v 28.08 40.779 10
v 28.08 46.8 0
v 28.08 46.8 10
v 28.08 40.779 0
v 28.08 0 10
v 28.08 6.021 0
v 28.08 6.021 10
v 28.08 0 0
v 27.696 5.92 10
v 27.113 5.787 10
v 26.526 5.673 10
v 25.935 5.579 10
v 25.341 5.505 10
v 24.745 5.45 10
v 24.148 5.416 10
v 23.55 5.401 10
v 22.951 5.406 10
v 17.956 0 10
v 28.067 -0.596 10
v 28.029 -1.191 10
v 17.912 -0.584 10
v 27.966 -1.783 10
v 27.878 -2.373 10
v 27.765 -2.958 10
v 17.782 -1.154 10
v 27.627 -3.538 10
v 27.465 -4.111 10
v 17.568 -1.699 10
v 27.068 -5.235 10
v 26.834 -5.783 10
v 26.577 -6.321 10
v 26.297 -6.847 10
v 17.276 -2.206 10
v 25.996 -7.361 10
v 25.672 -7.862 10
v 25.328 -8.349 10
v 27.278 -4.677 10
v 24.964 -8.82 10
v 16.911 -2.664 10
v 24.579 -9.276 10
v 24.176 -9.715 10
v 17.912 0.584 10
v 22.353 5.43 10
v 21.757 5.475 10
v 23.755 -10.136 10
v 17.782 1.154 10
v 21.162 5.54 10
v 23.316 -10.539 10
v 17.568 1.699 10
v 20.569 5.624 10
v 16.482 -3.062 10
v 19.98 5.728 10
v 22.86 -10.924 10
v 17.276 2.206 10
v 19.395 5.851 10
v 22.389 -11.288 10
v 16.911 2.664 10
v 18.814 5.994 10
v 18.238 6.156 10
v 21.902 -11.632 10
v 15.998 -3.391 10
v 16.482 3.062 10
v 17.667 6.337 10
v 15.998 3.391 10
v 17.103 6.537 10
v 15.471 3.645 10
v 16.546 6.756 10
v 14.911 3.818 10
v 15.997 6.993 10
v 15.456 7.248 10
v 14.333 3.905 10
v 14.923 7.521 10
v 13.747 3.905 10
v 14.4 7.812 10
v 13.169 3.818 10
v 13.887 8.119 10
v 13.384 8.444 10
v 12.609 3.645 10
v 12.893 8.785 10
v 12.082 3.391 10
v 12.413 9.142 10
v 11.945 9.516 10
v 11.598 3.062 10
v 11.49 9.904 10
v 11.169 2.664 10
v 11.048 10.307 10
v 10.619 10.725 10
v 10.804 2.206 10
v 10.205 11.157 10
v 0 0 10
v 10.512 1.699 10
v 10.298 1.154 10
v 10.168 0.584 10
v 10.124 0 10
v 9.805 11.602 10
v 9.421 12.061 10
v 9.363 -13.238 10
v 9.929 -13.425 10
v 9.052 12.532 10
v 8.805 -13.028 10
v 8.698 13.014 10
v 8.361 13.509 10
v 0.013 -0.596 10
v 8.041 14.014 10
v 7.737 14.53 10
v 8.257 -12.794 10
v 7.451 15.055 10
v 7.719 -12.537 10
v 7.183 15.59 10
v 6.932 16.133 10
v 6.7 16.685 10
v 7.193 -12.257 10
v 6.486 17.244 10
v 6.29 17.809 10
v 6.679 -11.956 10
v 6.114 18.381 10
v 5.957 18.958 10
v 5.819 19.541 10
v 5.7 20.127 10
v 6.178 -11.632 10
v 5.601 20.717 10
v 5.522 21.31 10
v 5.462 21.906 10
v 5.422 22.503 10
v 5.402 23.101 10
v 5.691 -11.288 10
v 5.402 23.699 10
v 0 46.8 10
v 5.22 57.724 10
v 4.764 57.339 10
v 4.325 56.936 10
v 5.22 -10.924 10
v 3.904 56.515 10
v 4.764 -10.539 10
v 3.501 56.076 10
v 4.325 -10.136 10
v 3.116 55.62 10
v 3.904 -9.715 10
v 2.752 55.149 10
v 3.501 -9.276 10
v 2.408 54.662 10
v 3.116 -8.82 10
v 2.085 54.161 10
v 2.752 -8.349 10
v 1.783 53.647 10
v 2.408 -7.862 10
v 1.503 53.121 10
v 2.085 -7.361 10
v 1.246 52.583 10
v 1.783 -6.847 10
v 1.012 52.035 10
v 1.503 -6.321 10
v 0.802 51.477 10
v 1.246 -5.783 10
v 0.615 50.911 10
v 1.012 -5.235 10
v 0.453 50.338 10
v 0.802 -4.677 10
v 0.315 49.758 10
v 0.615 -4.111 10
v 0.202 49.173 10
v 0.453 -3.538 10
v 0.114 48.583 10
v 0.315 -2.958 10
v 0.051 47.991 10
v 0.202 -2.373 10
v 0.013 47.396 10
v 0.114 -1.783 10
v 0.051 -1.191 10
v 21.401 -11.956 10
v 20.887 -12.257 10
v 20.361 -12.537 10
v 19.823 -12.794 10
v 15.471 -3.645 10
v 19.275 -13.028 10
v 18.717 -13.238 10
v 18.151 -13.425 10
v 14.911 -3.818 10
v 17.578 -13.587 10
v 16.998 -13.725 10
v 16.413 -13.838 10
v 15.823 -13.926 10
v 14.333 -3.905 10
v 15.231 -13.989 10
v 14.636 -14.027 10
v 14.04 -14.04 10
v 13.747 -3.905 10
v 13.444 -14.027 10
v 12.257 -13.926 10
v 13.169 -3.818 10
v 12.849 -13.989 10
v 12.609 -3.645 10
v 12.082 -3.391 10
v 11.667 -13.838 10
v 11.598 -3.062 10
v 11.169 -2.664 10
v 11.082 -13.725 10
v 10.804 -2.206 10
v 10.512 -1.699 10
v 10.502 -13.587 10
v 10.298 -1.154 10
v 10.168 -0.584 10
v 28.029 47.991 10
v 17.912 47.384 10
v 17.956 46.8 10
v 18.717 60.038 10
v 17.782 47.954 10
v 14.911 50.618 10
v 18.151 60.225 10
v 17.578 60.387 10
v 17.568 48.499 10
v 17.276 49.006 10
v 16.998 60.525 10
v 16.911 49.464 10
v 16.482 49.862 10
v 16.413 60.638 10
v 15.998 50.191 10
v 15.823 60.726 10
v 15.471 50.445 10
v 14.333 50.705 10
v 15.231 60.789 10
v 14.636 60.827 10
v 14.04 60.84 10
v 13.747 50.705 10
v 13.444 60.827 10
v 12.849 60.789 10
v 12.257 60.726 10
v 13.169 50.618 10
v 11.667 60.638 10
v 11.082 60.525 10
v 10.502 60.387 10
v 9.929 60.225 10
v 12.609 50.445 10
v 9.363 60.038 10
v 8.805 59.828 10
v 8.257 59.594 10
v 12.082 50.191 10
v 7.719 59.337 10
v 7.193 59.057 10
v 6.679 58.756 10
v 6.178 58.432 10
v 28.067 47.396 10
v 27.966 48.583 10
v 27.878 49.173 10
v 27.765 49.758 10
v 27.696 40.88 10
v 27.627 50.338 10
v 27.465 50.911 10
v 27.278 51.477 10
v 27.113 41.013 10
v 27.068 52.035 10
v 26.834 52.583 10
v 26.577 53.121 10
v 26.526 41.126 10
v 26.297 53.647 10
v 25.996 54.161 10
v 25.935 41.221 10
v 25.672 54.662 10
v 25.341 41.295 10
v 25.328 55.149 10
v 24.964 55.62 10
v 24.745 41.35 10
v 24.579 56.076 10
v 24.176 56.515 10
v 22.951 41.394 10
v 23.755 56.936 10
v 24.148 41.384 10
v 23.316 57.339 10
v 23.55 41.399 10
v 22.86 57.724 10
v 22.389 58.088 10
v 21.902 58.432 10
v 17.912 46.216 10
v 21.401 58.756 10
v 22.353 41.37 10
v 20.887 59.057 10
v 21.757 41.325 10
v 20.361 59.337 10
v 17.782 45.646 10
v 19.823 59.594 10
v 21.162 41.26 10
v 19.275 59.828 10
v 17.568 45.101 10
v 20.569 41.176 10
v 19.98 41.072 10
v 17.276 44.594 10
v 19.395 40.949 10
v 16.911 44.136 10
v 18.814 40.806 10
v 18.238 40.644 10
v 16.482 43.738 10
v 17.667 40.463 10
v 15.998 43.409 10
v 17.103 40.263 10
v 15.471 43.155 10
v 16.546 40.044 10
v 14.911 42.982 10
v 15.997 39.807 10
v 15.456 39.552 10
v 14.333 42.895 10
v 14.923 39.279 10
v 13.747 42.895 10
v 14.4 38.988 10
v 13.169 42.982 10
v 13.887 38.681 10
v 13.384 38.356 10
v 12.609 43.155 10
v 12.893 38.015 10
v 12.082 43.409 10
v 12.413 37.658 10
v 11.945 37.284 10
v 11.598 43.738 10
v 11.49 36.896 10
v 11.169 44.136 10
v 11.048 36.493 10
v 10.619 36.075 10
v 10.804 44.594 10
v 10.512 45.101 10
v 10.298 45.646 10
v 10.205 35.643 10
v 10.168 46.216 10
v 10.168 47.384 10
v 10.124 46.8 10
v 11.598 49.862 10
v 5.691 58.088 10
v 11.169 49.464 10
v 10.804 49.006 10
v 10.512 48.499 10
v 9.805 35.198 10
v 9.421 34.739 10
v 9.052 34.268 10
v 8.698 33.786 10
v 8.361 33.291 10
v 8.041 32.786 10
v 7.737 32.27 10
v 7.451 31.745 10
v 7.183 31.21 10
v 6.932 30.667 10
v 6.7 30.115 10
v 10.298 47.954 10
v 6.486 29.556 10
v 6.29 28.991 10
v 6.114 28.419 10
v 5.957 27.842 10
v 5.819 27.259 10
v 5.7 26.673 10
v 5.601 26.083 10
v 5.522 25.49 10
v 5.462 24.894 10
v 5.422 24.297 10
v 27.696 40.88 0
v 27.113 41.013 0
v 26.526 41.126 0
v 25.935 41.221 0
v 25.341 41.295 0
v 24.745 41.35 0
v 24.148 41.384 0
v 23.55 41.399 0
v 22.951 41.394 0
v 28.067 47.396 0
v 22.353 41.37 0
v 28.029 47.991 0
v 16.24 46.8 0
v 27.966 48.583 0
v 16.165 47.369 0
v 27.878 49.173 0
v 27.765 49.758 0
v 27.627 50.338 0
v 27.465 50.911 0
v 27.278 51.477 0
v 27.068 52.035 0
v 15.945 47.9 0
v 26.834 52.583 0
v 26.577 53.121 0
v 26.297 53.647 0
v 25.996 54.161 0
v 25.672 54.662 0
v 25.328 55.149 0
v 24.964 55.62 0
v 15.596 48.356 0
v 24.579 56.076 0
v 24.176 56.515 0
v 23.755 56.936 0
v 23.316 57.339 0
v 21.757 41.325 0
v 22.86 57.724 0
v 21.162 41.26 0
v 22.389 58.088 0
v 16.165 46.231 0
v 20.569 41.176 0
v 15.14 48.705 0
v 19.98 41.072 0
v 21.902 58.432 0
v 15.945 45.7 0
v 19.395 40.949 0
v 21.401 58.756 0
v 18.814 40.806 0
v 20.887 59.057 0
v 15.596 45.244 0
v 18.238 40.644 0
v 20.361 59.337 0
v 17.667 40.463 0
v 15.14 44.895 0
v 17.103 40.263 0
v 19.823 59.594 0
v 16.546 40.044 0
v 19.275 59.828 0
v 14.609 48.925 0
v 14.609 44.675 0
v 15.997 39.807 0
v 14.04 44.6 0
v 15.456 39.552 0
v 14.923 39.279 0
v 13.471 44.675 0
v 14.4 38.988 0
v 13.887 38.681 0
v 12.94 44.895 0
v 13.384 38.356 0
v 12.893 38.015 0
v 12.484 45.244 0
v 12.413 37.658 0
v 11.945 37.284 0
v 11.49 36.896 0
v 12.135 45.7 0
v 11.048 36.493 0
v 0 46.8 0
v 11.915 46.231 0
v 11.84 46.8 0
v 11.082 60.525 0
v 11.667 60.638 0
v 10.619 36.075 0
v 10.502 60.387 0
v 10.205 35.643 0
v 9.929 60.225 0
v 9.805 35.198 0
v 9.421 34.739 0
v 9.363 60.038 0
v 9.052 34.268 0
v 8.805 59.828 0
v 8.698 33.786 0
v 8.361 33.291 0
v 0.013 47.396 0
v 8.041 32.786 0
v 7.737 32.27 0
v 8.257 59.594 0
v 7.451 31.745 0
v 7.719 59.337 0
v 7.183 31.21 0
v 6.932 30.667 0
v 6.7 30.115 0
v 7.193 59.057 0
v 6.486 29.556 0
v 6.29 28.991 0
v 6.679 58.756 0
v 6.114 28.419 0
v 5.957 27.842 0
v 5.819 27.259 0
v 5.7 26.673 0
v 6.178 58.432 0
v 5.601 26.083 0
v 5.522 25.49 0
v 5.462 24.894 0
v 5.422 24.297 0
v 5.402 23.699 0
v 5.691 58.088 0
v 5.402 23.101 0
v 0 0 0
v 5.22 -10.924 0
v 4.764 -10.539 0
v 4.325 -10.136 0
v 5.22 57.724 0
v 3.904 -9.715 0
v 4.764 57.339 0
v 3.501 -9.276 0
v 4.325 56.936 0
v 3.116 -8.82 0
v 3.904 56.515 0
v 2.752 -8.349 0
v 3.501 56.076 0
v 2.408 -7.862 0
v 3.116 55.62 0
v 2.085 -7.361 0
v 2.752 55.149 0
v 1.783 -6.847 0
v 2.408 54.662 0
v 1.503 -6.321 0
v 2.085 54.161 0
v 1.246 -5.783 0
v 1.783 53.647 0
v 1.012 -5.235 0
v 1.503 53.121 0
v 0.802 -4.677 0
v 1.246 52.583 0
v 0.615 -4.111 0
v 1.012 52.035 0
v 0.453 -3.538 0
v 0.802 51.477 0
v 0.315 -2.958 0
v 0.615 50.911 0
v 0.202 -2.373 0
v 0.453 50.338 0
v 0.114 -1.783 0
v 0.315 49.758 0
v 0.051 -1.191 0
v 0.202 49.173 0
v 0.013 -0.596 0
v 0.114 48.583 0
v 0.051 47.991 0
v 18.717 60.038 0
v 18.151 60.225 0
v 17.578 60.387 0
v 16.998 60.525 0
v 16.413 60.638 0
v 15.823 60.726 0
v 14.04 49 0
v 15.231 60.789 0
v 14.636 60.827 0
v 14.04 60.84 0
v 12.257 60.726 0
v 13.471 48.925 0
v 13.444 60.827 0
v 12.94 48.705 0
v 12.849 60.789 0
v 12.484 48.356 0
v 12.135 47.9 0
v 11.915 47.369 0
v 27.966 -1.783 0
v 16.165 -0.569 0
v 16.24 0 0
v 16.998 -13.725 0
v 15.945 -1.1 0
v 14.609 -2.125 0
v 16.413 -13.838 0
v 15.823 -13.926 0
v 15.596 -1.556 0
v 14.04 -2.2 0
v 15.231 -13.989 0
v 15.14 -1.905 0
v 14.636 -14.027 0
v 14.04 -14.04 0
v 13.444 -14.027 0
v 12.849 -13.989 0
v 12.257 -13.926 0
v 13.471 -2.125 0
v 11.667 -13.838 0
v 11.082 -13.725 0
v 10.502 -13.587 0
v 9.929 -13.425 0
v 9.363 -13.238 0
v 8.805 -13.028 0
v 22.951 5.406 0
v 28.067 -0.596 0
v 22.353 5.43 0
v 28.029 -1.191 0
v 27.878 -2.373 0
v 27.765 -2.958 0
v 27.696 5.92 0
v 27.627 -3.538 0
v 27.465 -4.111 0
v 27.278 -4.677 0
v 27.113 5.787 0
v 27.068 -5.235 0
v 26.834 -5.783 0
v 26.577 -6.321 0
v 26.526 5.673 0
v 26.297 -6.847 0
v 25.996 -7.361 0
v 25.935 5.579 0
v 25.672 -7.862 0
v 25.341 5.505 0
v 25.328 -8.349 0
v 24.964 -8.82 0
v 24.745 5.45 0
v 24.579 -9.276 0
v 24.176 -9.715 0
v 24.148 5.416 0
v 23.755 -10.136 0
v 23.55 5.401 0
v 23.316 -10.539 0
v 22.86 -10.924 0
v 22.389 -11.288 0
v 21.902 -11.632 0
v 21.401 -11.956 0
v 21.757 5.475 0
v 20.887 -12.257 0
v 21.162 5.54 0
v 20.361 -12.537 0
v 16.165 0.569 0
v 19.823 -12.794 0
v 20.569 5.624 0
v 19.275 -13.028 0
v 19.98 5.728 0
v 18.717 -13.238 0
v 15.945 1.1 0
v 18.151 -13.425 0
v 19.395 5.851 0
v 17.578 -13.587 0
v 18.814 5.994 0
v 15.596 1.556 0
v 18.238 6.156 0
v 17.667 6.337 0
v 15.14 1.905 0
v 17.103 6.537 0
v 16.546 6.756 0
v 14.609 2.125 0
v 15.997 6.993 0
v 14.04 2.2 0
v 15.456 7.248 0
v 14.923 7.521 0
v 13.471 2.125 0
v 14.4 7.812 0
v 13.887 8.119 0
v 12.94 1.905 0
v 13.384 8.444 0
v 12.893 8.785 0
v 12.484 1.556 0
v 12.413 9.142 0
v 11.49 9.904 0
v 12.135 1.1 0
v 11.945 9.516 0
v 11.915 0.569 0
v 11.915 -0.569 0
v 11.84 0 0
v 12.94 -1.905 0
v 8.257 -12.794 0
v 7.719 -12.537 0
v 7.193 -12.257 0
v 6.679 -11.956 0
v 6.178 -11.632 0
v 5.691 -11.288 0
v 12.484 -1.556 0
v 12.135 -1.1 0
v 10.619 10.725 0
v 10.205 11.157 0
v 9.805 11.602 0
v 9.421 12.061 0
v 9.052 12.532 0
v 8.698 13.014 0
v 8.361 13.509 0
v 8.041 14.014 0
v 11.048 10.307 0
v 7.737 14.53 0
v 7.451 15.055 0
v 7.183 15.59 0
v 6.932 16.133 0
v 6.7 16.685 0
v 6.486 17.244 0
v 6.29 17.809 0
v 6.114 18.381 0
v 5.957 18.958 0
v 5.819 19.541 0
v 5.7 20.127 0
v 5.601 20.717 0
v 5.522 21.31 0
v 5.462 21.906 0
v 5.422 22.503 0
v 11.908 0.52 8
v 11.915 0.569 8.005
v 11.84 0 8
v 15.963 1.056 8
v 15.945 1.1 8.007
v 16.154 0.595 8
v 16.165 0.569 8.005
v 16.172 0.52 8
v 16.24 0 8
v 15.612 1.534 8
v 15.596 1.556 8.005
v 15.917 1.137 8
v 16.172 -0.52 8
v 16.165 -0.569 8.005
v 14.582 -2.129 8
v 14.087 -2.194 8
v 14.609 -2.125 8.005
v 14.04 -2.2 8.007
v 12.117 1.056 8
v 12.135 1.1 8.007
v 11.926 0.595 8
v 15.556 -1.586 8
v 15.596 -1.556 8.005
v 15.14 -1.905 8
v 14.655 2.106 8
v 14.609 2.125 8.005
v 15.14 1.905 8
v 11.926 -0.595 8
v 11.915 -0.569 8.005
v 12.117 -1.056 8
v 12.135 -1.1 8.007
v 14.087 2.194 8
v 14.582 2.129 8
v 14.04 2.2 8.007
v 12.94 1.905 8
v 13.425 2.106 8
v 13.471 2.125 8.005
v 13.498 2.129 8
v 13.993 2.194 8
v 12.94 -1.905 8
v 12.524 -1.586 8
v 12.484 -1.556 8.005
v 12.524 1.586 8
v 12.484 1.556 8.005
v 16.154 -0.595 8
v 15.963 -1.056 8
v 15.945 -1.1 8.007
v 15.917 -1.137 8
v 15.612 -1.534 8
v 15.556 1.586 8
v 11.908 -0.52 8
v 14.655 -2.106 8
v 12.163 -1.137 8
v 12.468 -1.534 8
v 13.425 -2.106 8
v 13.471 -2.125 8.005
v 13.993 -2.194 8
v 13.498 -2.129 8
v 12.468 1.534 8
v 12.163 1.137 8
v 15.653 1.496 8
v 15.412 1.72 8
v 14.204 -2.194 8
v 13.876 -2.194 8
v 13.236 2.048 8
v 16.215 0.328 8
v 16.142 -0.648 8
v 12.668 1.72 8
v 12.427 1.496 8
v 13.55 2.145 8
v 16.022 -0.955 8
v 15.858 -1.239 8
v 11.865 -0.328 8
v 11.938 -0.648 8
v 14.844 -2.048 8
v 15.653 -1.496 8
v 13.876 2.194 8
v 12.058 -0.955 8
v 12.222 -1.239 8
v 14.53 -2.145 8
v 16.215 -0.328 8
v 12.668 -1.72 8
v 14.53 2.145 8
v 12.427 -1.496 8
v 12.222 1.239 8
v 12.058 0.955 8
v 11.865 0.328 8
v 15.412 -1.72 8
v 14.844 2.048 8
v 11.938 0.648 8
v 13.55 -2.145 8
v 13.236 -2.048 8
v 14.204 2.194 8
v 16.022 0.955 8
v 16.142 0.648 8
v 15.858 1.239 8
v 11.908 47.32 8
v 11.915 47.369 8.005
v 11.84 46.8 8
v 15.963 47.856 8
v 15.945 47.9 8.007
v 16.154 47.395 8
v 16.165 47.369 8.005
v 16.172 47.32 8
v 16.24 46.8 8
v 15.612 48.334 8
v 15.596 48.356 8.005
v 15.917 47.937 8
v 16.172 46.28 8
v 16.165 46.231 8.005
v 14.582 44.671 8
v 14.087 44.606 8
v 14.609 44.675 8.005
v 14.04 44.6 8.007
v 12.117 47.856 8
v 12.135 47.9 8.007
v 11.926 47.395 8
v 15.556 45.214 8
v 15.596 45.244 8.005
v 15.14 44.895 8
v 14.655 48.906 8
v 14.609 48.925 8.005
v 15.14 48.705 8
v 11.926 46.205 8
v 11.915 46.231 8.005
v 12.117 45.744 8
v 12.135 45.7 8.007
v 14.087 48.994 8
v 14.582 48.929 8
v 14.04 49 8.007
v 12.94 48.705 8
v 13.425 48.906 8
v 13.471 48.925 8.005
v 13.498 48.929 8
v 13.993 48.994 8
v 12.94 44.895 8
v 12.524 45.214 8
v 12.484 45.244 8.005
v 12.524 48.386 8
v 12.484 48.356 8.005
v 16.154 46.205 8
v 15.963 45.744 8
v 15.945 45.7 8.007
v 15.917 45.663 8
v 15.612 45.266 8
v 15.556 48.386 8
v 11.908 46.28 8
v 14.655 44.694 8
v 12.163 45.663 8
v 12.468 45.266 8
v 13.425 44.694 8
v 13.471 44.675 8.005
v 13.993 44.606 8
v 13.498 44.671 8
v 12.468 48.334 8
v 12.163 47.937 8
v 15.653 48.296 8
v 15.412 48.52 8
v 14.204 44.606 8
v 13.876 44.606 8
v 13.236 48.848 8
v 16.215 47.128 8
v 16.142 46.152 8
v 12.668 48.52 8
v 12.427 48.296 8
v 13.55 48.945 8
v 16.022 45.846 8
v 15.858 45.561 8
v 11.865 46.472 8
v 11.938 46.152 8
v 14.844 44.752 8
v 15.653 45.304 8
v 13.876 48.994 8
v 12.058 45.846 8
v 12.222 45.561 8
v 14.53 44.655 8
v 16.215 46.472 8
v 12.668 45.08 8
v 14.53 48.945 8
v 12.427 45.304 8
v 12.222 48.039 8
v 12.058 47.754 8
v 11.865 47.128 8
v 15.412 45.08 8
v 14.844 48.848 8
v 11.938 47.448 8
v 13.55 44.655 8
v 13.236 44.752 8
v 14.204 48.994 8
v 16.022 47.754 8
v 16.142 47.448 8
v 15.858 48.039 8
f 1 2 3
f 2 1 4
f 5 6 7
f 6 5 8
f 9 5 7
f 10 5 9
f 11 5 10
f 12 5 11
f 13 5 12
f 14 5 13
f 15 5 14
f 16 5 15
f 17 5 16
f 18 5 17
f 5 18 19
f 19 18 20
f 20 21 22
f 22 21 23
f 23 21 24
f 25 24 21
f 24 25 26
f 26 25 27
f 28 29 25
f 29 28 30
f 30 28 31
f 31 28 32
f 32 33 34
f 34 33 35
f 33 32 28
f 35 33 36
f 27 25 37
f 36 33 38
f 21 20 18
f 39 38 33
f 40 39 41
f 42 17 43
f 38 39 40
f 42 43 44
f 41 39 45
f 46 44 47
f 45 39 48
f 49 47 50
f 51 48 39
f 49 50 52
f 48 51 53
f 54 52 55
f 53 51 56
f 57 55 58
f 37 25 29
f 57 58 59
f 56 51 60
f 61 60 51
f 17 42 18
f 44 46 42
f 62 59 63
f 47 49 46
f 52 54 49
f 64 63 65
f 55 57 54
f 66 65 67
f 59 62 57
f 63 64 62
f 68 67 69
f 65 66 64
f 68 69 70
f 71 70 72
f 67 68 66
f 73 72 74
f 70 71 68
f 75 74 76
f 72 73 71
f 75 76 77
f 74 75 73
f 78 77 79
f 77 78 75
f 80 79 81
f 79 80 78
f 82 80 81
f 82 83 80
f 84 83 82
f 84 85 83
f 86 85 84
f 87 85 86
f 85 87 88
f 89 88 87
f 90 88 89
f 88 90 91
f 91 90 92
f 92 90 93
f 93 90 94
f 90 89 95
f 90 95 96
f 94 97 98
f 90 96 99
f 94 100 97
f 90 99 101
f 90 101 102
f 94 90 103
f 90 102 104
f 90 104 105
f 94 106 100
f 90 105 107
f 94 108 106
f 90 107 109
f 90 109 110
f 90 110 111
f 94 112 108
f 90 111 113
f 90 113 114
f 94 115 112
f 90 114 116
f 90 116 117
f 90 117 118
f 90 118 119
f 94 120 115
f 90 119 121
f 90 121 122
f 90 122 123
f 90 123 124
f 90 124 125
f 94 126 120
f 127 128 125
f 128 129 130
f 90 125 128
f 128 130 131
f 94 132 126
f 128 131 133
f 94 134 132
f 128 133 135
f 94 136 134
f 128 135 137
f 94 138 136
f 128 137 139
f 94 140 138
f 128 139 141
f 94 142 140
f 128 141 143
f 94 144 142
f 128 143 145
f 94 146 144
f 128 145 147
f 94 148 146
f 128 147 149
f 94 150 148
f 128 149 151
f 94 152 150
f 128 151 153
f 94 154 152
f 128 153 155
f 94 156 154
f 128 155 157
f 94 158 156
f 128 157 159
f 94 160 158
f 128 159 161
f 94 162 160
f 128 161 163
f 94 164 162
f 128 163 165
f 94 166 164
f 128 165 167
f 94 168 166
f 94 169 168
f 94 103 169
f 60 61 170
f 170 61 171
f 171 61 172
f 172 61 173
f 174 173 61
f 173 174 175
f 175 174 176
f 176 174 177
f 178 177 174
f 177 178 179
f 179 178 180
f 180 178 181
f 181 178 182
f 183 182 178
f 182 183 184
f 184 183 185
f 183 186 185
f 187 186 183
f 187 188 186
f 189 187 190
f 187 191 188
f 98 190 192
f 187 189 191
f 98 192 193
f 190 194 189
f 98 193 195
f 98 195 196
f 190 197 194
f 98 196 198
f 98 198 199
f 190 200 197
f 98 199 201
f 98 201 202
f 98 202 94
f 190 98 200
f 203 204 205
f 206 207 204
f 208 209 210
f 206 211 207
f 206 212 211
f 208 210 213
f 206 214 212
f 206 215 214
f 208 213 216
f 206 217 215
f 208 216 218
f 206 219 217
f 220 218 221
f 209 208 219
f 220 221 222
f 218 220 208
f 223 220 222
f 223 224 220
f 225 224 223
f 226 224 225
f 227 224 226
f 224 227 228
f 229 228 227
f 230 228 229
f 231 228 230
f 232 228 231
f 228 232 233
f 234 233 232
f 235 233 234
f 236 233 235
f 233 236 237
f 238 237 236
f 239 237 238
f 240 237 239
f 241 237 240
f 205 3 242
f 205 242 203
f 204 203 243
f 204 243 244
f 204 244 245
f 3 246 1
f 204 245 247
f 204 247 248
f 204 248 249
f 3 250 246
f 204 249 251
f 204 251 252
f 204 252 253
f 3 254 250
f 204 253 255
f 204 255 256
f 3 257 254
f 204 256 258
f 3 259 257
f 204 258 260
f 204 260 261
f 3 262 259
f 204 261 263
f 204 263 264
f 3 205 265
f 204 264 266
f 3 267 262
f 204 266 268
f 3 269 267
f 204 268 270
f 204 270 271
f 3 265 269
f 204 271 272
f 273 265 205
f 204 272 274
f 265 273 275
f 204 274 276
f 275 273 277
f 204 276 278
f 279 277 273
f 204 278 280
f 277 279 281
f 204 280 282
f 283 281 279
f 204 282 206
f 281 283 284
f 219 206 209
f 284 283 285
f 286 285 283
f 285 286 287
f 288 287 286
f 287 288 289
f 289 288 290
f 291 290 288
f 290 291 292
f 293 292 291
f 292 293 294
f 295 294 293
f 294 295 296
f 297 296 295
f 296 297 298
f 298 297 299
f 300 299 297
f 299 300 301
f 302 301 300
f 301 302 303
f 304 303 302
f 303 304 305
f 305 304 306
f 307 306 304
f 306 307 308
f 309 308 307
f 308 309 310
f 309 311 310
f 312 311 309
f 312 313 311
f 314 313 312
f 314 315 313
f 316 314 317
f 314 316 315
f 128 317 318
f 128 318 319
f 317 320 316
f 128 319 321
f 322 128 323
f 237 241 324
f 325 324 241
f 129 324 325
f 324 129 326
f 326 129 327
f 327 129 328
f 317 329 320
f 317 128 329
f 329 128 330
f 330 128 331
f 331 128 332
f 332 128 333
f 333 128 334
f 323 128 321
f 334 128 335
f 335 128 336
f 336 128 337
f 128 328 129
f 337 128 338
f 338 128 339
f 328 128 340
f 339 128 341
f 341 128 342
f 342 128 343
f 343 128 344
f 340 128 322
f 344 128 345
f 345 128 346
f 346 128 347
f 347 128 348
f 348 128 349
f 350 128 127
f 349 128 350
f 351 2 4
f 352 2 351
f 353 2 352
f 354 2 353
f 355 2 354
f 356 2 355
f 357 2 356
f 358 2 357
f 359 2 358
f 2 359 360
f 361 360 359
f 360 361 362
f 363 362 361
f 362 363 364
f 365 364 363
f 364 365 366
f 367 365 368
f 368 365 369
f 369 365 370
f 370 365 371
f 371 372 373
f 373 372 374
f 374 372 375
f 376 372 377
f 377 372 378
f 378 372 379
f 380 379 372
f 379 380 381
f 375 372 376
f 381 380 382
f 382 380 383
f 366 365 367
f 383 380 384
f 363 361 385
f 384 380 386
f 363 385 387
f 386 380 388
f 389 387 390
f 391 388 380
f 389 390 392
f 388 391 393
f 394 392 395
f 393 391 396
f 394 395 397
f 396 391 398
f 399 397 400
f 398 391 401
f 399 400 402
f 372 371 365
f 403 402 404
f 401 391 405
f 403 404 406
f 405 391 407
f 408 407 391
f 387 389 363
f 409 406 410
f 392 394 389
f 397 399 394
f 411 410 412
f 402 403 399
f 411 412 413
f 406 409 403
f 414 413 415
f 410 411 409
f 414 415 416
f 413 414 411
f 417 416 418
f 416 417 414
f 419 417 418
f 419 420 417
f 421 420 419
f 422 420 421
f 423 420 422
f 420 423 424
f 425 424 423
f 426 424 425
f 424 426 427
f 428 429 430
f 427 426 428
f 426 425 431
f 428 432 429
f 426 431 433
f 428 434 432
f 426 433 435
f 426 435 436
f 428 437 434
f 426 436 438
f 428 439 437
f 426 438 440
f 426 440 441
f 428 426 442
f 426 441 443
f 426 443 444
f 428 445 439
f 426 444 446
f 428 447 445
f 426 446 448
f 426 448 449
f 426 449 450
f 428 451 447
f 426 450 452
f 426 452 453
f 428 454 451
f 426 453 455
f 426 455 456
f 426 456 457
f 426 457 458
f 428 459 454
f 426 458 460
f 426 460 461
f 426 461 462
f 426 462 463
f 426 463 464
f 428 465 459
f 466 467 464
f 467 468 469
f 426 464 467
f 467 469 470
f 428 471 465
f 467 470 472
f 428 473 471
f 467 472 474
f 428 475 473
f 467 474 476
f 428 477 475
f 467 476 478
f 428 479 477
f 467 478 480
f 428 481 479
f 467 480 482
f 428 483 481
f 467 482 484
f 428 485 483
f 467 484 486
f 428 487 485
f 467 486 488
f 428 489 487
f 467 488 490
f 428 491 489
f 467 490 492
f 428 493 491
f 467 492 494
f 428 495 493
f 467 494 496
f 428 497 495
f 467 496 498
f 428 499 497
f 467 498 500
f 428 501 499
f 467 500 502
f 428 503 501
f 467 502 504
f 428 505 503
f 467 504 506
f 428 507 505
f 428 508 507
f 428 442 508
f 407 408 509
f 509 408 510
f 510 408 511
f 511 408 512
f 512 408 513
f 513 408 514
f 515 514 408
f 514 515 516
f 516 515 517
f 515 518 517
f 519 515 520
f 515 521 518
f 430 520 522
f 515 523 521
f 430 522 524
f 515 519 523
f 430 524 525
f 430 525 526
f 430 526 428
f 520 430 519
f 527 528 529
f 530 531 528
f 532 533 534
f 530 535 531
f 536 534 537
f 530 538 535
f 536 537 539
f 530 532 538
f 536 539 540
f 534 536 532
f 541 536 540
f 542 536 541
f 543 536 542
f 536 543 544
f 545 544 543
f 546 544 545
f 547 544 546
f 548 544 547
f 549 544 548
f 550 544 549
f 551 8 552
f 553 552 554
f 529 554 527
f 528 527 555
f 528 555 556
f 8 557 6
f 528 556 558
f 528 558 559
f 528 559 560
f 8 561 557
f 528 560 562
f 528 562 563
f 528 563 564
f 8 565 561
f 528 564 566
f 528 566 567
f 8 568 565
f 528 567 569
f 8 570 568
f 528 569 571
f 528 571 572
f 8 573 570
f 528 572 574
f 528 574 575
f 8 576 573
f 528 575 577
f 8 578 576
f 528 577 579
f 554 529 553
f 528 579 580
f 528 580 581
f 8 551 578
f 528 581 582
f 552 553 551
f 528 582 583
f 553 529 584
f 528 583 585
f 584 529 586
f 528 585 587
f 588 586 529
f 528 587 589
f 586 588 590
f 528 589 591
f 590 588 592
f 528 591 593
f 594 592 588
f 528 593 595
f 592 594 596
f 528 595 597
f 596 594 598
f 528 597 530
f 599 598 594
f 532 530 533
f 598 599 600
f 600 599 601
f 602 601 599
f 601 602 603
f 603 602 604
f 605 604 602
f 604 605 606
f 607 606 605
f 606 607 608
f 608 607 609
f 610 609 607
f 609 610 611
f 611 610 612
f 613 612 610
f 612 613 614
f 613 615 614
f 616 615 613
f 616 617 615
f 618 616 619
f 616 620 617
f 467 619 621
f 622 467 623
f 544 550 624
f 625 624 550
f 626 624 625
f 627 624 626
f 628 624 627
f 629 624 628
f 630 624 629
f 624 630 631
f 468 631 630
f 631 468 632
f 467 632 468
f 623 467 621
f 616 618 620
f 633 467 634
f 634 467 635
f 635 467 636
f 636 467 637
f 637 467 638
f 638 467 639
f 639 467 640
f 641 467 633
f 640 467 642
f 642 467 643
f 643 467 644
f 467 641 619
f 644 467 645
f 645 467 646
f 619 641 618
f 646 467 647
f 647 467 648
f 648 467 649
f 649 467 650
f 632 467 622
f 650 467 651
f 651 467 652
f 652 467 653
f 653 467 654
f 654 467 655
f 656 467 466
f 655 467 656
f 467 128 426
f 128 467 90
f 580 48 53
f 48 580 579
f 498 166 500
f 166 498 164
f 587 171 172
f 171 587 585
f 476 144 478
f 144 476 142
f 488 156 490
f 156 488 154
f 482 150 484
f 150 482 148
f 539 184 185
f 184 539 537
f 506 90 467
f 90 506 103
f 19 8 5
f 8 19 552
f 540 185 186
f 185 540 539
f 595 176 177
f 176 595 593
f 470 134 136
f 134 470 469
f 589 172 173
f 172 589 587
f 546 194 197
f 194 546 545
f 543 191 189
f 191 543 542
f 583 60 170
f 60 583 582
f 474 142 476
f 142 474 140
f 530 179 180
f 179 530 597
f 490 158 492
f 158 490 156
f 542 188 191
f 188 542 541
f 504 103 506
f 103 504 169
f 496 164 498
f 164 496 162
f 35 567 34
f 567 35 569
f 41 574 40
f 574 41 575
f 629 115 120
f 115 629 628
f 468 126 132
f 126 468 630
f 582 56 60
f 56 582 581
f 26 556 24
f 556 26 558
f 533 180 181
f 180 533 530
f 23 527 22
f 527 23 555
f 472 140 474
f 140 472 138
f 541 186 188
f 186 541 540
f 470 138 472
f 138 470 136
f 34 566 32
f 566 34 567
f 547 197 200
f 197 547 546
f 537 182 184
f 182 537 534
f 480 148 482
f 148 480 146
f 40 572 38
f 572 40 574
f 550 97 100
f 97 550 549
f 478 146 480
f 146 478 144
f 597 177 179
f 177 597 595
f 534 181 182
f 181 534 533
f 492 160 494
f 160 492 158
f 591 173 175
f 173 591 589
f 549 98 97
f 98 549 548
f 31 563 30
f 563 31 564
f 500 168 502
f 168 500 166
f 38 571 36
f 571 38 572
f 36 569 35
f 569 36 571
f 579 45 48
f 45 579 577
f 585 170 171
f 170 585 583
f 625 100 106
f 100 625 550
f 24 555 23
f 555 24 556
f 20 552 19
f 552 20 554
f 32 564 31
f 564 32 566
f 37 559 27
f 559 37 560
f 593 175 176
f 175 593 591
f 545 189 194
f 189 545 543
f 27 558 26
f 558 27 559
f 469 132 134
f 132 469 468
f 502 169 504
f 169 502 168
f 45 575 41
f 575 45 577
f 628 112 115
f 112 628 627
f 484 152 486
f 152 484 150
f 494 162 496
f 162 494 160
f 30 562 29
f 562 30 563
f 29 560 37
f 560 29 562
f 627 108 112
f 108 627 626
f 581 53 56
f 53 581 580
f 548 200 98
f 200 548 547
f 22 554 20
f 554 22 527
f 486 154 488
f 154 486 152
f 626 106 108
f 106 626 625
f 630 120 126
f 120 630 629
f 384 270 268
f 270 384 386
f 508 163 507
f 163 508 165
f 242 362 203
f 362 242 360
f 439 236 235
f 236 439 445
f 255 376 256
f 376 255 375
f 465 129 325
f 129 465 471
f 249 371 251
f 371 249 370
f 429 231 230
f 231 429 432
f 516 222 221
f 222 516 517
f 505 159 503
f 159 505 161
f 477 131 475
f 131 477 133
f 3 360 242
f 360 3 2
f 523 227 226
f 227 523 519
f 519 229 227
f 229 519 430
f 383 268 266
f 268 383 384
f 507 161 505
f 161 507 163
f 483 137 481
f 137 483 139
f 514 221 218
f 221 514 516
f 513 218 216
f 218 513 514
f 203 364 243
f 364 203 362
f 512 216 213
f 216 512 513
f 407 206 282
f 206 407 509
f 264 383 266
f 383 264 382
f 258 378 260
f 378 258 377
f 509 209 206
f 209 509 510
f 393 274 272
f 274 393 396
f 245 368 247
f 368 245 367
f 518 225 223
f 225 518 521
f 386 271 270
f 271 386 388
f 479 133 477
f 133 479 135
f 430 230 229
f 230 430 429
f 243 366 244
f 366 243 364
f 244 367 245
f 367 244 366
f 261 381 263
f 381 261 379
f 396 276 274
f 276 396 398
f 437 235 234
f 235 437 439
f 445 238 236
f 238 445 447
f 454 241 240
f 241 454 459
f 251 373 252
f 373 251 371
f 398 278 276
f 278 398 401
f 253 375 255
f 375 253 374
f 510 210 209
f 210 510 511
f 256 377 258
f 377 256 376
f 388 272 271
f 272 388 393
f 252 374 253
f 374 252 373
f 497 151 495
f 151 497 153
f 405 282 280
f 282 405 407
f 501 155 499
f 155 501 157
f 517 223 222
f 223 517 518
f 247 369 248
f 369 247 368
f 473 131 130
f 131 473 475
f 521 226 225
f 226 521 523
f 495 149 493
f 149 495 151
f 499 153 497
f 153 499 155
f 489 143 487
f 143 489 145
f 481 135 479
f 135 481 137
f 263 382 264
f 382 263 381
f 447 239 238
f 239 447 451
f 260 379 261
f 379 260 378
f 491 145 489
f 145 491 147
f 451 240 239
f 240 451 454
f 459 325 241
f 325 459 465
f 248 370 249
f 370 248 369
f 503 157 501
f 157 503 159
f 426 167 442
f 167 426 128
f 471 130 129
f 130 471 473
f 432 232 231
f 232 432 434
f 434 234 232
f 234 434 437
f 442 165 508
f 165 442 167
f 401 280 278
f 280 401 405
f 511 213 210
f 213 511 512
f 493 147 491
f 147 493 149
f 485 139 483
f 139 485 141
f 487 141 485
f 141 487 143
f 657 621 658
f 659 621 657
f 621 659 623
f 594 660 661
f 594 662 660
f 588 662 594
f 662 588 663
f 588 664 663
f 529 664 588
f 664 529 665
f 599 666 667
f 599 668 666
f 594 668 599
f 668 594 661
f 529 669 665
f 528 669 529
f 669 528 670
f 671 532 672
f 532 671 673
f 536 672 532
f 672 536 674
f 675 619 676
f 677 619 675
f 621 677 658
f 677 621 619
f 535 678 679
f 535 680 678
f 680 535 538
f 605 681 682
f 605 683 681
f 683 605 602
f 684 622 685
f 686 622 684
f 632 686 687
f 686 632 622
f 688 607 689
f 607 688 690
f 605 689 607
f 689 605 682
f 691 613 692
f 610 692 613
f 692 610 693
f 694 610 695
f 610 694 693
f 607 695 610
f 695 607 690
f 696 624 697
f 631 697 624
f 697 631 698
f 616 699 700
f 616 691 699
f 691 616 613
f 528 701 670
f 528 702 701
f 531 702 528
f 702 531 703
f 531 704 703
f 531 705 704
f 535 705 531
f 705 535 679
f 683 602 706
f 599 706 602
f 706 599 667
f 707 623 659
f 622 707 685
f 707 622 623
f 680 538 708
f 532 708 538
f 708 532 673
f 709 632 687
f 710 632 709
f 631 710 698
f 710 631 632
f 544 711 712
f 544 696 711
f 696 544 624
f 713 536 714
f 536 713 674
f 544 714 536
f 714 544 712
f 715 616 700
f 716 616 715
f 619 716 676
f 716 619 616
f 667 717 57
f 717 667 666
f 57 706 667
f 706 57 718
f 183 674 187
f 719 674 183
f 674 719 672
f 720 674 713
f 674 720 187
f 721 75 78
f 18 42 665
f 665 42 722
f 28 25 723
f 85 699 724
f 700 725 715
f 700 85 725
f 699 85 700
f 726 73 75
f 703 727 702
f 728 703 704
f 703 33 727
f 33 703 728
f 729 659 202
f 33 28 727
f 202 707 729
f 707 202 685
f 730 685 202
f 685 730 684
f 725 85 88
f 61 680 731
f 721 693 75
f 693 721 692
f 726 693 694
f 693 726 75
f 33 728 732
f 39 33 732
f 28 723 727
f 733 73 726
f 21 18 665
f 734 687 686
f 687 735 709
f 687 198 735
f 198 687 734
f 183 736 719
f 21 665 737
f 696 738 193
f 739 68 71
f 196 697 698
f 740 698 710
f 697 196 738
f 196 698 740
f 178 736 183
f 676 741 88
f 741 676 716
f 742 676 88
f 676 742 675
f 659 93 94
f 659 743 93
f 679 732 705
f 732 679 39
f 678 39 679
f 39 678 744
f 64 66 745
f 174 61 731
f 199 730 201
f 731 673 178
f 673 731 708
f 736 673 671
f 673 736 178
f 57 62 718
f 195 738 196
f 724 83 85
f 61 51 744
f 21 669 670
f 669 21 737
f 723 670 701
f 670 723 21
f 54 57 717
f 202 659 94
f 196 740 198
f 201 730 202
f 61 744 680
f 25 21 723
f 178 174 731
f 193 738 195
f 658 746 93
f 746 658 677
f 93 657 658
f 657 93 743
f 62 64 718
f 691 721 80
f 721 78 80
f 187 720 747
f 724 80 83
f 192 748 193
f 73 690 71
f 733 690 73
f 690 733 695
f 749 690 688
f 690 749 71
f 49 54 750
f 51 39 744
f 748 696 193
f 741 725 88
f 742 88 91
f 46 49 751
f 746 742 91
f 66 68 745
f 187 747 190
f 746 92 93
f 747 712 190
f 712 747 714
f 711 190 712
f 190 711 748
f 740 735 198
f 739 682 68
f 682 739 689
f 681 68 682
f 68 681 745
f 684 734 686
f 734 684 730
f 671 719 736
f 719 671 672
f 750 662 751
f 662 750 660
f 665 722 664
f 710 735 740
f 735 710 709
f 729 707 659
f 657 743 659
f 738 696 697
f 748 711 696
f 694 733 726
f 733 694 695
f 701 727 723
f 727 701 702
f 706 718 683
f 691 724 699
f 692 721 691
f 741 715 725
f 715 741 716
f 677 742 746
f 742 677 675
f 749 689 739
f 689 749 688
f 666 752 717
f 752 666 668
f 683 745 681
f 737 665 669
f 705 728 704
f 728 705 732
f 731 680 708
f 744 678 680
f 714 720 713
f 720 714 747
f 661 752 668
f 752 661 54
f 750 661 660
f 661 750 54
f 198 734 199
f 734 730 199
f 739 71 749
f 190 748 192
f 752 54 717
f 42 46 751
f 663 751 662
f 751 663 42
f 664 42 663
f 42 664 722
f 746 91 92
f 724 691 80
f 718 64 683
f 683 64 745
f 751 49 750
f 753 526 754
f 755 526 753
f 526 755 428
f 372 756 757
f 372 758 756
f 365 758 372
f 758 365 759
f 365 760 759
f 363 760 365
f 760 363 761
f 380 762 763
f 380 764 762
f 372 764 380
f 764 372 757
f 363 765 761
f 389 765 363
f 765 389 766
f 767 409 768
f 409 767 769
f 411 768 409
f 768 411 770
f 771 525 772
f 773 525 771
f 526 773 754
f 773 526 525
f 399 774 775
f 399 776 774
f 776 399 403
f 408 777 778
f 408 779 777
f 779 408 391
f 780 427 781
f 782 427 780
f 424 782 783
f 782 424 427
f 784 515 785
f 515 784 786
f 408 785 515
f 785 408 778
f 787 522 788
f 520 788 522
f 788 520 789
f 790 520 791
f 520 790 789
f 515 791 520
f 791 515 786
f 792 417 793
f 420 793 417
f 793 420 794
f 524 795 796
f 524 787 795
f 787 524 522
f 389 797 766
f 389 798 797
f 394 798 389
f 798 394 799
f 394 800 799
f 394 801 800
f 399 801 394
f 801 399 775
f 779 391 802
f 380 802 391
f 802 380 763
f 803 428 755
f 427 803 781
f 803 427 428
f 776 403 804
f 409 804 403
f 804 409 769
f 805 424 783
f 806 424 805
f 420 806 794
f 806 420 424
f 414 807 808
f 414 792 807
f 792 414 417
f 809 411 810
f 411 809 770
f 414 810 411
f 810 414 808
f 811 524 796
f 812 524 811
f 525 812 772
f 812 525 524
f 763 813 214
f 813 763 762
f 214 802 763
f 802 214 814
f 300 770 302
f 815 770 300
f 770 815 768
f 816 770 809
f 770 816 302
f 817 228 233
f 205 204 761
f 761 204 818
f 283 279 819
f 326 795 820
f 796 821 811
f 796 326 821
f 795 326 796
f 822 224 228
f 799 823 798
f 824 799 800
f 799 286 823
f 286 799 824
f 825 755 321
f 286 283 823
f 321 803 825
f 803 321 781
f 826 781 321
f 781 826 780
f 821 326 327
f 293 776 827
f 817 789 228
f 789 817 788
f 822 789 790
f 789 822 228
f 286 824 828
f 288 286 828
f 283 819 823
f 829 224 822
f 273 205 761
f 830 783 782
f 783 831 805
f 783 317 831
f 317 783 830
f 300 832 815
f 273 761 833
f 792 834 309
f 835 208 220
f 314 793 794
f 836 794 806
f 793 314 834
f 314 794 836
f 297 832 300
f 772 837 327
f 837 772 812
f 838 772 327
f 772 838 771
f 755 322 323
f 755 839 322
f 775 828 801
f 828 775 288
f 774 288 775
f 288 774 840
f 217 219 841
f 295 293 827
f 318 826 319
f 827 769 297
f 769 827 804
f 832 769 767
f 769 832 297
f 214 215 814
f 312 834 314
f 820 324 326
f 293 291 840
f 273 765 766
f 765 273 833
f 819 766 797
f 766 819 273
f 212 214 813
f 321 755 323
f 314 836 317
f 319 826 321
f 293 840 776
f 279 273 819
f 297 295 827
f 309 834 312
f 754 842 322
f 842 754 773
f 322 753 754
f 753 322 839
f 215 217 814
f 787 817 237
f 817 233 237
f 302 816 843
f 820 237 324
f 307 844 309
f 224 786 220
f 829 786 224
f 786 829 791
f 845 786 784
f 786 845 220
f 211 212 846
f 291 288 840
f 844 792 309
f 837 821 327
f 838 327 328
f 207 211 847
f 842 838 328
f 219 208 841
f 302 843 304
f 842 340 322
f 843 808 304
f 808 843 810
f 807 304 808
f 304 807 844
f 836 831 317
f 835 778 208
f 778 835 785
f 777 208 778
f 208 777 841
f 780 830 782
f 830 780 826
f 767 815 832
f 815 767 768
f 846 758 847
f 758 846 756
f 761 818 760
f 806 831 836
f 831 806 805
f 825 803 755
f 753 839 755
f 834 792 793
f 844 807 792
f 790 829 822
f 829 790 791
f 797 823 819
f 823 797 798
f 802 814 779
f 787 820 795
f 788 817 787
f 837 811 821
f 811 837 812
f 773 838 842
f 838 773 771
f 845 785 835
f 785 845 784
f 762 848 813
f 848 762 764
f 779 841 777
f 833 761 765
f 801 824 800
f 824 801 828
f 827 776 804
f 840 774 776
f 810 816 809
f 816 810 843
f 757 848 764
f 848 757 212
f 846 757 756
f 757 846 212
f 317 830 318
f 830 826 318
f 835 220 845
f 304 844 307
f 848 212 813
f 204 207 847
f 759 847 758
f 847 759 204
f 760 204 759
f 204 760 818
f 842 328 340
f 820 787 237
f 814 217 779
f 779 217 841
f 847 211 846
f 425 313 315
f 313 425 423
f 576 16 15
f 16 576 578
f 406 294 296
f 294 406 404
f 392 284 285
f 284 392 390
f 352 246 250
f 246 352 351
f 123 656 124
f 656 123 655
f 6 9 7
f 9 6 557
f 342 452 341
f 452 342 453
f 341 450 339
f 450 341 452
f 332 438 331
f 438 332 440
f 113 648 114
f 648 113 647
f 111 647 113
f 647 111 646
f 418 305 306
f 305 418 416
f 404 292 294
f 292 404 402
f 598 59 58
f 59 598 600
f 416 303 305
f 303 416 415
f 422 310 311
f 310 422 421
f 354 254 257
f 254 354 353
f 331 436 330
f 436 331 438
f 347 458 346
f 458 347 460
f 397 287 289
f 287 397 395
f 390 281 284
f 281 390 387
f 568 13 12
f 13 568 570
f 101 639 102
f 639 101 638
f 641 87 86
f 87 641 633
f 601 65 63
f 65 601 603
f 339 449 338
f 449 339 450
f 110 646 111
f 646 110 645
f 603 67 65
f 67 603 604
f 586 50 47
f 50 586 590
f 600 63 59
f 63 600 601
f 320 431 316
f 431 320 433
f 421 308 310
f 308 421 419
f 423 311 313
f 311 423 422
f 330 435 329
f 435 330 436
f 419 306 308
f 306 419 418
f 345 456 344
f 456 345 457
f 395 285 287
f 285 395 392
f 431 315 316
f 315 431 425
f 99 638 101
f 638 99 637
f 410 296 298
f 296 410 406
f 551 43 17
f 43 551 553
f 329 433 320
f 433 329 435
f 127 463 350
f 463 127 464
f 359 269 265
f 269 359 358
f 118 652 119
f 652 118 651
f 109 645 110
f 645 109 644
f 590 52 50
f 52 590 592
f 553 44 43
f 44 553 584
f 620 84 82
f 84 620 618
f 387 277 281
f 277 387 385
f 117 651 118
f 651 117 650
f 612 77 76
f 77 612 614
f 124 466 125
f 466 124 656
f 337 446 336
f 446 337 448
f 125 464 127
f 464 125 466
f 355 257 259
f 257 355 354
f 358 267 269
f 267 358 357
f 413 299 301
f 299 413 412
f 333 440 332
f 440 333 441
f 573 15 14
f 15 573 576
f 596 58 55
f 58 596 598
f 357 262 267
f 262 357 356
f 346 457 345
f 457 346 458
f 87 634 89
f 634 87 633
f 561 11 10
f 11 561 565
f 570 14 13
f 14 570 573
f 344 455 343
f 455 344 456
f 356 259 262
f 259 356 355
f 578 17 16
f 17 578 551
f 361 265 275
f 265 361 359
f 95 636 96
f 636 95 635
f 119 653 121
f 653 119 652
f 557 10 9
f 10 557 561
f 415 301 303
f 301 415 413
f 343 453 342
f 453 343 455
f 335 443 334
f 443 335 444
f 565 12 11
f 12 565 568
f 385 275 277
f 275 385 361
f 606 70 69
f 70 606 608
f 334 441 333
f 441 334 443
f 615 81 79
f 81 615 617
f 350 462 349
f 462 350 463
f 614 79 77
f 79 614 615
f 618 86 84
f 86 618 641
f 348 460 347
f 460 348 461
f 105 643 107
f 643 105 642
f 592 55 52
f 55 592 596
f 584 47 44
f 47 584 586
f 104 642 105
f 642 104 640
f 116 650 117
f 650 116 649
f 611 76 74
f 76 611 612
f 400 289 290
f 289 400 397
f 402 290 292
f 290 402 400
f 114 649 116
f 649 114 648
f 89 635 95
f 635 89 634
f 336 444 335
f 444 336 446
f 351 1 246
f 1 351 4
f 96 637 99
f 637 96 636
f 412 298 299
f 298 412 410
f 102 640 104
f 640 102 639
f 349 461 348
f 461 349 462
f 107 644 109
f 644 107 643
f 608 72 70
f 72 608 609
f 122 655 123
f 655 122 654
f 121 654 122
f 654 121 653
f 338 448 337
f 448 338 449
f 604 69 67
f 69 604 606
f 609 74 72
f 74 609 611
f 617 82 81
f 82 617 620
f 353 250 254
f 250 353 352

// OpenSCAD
$fa = 1;
$fs = 0.6;

pipe_diameter = 36.0;
cube_side = pipe_diameter * 1.3;
cube_depth = 10.0;

module ScrewTube(size, length){
    cylinder(d=size * 2.5, h=length);
}

module ScrewCutout(size, length)
{
    chamferStart = length - size / 2;
    boreSize = size * 1.1;
    
    cylinder(d=boreSize, h=length);
    translate([0,0, chamferStart]) cylinder(h=length - chamferStart, d1=boreSize, d2=boreSize * 1.78);
}

difference()
{
    union()
    {
        cube([cube_side * 0.6, cube_side, cube_depth]);
        
        translate([cube_side * 0.3, 0.0, 0.0])
            cylinder(d=cube_side * 0.6, h=cube_depth);
        
        translate([cube_side * 0.3, cube_side, 0.0])
            cylinder(d=cube_side * 0.6, h=cube_depth);
    }
    
    translate([cube_side * 0.5,cube_side / 2,0])
                cylinder(d=pipe_diameter, h=cube_depth);
    
    translate([cube_side * 0.3, 0.0, 0.0])
        ScrewCutout(4, cube_depth);
    
    translate([cube_side * 0.3, cube_side, 0.0])
        ScrewCutout(4, cube_depth);
}
